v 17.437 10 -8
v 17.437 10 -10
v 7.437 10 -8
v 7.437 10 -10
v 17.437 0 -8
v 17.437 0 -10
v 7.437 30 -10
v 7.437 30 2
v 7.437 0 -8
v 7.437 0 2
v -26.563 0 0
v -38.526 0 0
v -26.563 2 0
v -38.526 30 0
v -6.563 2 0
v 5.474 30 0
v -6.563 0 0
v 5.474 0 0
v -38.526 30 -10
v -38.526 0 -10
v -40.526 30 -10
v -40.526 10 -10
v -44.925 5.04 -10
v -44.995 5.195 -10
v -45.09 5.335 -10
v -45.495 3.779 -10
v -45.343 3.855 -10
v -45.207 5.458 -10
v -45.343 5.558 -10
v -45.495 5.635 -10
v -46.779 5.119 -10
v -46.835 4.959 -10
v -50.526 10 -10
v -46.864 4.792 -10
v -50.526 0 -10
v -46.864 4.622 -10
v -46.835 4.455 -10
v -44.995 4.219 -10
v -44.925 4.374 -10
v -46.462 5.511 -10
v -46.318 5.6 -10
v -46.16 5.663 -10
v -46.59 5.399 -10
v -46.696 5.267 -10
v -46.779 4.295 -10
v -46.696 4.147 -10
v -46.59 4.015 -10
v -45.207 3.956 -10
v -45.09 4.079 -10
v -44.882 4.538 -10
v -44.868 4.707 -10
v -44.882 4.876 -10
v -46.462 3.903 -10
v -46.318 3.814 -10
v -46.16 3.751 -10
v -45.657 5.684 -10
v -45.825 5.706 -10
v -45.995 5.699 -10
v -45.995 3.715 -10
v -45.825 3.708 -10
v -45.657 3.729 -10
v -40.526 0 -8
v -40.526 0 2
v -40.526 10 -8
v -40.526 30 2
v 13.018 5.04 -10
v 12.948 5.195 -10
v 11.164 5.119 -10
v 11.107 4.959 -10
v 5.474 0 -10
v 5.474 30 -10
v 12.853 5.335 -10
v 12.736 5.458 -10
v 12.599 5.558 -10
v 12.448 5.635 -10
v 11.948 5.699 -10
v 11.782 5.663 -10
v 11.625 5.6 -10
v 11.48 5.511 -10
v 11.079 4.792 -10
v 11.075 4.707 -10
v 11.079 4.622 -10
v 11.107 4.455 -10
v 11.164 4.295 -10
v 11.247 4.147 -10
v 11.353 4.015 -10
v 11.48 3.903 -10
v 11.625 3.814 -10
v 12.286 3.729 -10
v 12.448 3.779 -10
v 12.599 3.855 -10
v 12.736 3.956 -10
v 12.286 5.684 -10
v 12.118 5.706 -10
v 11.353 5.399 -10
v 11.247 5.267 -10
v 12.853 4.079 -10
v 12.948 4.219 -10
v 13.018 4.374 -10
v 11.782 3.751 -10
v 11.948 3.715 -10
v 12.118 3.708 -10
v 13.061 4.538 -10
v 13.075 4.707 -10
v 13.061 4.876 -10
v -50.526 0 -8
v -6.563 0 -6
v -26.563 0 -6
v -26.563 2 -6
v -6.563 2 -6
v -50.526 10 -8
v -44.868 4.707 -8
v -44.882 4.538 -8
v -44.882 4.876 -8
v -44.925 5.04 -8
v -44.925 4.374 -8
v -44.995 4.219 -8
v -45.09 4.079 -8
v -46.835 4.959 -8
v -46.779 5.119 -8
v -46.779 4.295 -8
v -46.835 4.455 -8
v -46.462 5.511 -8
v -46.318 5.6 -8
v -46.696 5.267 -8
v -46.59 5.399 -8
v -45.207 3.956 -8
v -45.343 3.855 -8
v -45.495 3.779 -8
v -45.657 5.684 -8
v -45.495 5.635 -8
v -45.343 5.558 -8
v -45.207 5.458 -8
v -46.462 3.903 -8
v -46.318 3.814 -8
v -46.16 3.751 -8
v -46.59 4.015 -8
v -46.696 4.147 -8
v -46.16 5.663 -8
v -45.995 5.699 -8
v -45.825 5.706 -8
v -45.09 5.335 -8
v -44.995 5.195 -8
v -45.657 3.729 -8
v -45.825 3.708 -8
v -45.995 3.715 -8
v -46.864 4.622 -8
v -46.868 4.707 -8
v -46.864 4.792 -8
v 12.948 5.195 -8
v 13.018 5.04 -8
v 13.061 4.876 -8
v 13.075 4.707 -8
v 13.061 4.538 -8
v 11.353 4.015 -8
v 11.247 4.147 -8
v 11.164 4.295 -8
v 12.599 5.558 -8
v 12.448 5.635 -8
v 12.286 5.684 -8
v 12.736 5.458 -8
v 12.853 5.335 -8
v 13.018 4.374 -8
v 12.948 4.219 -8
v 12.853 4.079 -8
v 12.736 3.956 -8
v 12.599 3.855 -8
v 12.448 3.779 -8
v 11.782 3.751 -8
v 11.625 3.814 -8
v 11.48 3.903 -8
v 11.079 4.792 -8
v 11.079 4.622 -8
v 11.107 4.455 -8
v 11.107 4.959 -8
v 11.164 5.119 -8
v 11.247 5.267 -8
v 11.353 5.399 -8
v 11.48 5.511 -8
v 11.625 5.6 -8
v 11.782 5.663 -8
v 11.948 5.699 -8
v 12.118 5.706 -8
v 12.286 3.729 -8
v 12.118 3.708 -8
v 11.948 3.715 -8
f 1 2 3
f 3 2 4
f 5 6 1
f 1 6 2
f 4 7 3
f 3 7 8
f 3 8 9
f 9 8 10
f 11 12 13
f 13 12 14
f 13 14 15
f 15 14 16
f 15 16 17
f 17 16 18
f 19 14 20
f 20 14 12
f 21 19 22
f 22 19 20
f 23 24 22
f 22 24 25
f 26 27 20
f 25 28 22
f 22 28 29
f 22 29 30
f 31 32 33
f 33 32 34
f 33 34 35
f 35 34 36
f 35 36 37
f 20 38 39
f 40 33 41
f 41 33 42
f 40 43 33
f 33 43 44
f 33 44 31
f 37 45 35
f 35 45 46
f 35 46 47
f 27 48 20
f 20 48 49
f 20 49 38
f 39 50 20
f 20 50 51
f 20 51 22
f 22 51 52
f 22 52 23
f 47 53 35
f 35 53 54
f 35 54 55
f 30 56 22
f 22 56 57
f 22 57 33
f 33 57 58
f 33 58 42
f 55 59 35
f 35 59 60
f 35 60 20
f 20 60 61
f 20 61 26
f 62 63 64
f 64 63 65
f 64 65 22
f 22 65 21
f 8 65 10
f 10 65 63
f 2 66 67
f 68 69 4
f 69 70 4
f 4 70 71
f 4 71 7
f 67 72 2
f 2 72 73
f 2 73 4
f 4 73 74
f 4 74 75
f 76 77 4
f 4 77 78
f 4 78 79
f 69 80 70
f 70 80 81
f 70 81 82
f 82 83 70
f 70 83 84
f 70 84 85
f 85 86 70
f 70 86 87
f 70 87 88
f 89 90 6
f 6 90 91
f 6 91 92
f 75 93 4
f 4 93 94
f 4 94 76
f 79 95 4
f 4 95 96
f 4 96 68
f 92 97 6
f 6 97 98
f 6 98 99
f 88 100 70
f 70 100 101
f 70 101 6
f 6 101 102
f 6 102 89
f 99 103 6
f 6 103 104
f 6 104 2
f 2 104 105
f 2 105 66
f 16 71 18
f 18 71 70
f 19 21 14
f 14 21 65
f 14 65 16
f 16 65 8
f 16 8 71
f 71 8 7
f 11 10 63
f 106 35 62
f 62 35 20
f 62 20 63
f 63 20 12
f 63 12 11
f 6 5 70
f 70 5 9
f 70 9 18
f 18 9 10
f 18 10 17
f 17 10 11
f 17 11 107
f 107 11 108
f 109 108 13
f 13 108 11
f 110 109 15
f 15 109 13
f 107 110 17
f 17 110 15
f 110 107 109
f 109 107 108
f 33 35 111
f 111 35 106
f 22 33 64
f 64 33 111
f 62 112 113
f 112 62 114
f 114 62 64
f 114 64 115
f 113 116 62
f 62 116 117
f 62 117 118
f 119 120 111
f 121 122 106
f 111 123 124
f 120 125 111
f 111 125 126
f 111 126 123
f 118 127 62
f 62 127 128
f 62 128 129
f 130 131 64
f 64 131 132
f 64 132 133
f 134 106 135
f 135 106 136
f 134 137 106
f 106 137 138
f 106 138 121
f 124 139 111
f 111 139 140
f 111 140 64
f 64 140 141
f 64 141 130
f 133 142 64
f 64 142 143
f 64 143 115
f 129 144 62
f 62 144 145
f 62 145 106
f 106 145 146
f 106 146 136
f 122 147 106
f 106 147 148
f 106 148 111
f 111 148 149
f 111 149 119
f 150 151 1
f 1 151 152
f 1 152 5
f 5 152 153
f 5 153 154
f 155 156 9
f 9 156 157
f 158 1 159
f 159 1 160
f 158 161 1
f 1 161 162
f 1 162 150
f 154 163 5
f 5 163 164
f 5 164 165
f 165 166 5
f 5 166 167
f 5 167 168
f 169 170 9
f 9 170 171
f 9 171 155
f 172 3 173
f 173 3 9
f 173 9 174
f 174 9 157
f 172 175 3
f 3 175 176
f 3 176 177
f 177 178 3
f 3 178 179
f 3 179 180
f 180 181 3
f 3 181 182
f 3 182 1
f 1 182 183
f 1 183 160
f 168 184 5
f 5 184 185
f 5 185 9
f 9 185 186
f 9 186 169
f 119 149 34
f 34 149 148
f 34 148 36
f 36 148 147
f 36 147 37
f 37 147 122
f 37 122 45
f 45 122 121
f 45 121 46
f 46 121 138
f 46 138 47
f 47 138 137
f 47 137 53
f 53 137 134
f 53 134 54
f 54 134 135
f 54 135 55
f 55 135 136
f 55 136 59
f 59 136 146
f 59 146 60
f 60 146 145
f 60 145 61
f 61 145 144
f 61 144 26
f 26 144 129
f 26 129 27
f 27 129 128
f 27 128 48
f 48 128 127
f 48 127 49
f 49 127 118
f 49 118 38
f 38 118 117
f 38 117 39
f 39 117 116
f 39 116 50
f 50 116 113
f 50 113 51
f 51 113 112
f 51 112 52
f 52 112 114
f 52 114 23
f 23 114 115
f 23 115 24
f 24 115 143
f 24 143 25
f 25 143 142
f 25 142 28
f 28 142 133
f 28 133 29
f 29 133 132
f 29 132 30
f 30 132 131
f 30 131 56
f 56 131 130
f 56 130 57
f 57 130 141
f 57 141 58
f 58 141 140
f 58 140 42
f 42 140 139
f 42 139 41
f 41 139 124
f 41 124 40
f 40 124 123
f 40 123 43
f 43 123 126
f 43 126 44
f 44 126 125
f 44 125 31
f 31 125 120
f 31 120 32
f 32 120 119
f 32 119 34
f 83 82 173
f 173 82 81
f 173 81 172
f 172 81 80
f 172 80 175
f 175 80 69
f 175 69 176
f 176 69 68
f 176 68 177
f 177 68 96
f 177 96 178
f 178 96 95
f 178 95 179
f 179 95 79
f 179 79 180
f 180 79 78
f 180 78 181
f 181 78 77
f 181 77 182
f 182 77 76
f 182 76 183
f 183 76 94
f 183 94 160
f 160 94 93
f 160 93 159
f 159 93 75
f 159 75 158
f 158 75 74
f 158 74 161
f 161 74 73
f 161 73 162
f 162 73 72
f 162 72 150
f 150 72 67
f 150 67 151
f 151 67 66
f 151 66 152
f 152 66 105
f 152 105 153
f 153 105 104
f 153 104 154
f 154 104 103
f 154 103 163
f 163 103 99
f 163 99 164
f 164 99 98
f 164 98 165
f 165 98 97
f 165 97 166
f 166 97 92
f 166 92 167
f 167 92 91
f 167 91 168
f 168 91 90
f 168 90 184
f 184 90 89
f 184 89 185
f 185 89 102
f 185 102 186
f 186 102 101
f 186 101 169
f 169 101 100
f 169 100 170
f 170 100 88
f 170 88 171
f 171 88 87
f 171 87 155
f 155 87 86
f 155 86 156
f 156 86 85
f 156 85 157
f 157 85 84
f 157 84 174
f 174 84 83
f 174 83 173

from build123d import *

# Parameters (mm, degrees)
EXTRUDE_1_DEPTH     = 30
SKETCH_2_W          = 20
SKETCH_2_H          = 2
EXTRUDE_2_DEPTH     = 6
SKETCH_3_W          = 10
SKETCH_3_H          = 10
EXTRUDE_5_DEPTH     = 10
SKETCH_3_2_W        = 10
SKETCH_3_2_H        = 10
CUT_EXTRUDE_1_DEPTH = 8
SKETCH_4_R          = 1
CUT_EXTRUDE_2_DEPTH = 15


with BuildPart() as part:
    # 草图1 → 凸台-拉伸1 (new body)
    with BuildSketch(Plane(origin=(0, 0, 0), x_dir=(1, 0, 0), z_dir=(0, 1, 0))):
        Polygon((-38.526315789, 0), (5.473684211, 0), (5.473684211, 10), (7.436715789, 10), (7.436715789, -2), (5.473684211, -2), (-38.526315789, -2), (-40.526315789, -2), (-40.526315789, 10), (-38.526315789, 10), align=None)
    extrude(amount=EXTRUDE_1_DEPTH)

    # 草图2 → 凸台-拉伸2 (add)
    with BuildSketch(Plane.XY):
        with Locations((-16.563284211, 1)):
            Rectangle(SKETCH_2_W, SKETCH_2_H)
    extrude(amount=-EXTRUDE_2_DEPTH)

    # 草图3 → 凸台-拉伸5 (add)
    with BuildSketch(Plane.XY):
        with Locations((-45.526315789, 5)):
            Rectangle(SKETCH_3_W, SKETCH_3_H)
        with Locations((12.436715789, 5)):
            Rectangle(SKETCH_3_W, SKETCH_3_H)
    extrude(amount=-EXTRUDE_5_DEPTH)

    # 草图3<2> → 切除-拉伸1 (cut)
    with BuildSketch(Plane.XY):
        with Locations((-45.526315789, 5)):
            Rectangle(SKETCH_3_2_W, SKETCH_3_2_H)
        with Locations((12.436715789, 5)):
            Rectangle(SKETCH_3_2_W, SKETCH_3_2_H)
    extrude(amount=-CUT_EXTRUDE_1_DEPTH, mode=Mode.SUBTRACT)

    # 草图4 → 切除-拉伸2 (cut)
    with BuildSketch(Plane.XY):
        with Locations((-45.867673878, 4.706880403)):
            Circle(SKETCH_4_R)
        with Locations((12.075128271, 4.706880403)):
            Circle(SKETCH_4_R)
    extrude(amount=-CUT_EXTRUDE_2_DEPTH, mode=Mode.SUBTRACT)


solid = part.part
